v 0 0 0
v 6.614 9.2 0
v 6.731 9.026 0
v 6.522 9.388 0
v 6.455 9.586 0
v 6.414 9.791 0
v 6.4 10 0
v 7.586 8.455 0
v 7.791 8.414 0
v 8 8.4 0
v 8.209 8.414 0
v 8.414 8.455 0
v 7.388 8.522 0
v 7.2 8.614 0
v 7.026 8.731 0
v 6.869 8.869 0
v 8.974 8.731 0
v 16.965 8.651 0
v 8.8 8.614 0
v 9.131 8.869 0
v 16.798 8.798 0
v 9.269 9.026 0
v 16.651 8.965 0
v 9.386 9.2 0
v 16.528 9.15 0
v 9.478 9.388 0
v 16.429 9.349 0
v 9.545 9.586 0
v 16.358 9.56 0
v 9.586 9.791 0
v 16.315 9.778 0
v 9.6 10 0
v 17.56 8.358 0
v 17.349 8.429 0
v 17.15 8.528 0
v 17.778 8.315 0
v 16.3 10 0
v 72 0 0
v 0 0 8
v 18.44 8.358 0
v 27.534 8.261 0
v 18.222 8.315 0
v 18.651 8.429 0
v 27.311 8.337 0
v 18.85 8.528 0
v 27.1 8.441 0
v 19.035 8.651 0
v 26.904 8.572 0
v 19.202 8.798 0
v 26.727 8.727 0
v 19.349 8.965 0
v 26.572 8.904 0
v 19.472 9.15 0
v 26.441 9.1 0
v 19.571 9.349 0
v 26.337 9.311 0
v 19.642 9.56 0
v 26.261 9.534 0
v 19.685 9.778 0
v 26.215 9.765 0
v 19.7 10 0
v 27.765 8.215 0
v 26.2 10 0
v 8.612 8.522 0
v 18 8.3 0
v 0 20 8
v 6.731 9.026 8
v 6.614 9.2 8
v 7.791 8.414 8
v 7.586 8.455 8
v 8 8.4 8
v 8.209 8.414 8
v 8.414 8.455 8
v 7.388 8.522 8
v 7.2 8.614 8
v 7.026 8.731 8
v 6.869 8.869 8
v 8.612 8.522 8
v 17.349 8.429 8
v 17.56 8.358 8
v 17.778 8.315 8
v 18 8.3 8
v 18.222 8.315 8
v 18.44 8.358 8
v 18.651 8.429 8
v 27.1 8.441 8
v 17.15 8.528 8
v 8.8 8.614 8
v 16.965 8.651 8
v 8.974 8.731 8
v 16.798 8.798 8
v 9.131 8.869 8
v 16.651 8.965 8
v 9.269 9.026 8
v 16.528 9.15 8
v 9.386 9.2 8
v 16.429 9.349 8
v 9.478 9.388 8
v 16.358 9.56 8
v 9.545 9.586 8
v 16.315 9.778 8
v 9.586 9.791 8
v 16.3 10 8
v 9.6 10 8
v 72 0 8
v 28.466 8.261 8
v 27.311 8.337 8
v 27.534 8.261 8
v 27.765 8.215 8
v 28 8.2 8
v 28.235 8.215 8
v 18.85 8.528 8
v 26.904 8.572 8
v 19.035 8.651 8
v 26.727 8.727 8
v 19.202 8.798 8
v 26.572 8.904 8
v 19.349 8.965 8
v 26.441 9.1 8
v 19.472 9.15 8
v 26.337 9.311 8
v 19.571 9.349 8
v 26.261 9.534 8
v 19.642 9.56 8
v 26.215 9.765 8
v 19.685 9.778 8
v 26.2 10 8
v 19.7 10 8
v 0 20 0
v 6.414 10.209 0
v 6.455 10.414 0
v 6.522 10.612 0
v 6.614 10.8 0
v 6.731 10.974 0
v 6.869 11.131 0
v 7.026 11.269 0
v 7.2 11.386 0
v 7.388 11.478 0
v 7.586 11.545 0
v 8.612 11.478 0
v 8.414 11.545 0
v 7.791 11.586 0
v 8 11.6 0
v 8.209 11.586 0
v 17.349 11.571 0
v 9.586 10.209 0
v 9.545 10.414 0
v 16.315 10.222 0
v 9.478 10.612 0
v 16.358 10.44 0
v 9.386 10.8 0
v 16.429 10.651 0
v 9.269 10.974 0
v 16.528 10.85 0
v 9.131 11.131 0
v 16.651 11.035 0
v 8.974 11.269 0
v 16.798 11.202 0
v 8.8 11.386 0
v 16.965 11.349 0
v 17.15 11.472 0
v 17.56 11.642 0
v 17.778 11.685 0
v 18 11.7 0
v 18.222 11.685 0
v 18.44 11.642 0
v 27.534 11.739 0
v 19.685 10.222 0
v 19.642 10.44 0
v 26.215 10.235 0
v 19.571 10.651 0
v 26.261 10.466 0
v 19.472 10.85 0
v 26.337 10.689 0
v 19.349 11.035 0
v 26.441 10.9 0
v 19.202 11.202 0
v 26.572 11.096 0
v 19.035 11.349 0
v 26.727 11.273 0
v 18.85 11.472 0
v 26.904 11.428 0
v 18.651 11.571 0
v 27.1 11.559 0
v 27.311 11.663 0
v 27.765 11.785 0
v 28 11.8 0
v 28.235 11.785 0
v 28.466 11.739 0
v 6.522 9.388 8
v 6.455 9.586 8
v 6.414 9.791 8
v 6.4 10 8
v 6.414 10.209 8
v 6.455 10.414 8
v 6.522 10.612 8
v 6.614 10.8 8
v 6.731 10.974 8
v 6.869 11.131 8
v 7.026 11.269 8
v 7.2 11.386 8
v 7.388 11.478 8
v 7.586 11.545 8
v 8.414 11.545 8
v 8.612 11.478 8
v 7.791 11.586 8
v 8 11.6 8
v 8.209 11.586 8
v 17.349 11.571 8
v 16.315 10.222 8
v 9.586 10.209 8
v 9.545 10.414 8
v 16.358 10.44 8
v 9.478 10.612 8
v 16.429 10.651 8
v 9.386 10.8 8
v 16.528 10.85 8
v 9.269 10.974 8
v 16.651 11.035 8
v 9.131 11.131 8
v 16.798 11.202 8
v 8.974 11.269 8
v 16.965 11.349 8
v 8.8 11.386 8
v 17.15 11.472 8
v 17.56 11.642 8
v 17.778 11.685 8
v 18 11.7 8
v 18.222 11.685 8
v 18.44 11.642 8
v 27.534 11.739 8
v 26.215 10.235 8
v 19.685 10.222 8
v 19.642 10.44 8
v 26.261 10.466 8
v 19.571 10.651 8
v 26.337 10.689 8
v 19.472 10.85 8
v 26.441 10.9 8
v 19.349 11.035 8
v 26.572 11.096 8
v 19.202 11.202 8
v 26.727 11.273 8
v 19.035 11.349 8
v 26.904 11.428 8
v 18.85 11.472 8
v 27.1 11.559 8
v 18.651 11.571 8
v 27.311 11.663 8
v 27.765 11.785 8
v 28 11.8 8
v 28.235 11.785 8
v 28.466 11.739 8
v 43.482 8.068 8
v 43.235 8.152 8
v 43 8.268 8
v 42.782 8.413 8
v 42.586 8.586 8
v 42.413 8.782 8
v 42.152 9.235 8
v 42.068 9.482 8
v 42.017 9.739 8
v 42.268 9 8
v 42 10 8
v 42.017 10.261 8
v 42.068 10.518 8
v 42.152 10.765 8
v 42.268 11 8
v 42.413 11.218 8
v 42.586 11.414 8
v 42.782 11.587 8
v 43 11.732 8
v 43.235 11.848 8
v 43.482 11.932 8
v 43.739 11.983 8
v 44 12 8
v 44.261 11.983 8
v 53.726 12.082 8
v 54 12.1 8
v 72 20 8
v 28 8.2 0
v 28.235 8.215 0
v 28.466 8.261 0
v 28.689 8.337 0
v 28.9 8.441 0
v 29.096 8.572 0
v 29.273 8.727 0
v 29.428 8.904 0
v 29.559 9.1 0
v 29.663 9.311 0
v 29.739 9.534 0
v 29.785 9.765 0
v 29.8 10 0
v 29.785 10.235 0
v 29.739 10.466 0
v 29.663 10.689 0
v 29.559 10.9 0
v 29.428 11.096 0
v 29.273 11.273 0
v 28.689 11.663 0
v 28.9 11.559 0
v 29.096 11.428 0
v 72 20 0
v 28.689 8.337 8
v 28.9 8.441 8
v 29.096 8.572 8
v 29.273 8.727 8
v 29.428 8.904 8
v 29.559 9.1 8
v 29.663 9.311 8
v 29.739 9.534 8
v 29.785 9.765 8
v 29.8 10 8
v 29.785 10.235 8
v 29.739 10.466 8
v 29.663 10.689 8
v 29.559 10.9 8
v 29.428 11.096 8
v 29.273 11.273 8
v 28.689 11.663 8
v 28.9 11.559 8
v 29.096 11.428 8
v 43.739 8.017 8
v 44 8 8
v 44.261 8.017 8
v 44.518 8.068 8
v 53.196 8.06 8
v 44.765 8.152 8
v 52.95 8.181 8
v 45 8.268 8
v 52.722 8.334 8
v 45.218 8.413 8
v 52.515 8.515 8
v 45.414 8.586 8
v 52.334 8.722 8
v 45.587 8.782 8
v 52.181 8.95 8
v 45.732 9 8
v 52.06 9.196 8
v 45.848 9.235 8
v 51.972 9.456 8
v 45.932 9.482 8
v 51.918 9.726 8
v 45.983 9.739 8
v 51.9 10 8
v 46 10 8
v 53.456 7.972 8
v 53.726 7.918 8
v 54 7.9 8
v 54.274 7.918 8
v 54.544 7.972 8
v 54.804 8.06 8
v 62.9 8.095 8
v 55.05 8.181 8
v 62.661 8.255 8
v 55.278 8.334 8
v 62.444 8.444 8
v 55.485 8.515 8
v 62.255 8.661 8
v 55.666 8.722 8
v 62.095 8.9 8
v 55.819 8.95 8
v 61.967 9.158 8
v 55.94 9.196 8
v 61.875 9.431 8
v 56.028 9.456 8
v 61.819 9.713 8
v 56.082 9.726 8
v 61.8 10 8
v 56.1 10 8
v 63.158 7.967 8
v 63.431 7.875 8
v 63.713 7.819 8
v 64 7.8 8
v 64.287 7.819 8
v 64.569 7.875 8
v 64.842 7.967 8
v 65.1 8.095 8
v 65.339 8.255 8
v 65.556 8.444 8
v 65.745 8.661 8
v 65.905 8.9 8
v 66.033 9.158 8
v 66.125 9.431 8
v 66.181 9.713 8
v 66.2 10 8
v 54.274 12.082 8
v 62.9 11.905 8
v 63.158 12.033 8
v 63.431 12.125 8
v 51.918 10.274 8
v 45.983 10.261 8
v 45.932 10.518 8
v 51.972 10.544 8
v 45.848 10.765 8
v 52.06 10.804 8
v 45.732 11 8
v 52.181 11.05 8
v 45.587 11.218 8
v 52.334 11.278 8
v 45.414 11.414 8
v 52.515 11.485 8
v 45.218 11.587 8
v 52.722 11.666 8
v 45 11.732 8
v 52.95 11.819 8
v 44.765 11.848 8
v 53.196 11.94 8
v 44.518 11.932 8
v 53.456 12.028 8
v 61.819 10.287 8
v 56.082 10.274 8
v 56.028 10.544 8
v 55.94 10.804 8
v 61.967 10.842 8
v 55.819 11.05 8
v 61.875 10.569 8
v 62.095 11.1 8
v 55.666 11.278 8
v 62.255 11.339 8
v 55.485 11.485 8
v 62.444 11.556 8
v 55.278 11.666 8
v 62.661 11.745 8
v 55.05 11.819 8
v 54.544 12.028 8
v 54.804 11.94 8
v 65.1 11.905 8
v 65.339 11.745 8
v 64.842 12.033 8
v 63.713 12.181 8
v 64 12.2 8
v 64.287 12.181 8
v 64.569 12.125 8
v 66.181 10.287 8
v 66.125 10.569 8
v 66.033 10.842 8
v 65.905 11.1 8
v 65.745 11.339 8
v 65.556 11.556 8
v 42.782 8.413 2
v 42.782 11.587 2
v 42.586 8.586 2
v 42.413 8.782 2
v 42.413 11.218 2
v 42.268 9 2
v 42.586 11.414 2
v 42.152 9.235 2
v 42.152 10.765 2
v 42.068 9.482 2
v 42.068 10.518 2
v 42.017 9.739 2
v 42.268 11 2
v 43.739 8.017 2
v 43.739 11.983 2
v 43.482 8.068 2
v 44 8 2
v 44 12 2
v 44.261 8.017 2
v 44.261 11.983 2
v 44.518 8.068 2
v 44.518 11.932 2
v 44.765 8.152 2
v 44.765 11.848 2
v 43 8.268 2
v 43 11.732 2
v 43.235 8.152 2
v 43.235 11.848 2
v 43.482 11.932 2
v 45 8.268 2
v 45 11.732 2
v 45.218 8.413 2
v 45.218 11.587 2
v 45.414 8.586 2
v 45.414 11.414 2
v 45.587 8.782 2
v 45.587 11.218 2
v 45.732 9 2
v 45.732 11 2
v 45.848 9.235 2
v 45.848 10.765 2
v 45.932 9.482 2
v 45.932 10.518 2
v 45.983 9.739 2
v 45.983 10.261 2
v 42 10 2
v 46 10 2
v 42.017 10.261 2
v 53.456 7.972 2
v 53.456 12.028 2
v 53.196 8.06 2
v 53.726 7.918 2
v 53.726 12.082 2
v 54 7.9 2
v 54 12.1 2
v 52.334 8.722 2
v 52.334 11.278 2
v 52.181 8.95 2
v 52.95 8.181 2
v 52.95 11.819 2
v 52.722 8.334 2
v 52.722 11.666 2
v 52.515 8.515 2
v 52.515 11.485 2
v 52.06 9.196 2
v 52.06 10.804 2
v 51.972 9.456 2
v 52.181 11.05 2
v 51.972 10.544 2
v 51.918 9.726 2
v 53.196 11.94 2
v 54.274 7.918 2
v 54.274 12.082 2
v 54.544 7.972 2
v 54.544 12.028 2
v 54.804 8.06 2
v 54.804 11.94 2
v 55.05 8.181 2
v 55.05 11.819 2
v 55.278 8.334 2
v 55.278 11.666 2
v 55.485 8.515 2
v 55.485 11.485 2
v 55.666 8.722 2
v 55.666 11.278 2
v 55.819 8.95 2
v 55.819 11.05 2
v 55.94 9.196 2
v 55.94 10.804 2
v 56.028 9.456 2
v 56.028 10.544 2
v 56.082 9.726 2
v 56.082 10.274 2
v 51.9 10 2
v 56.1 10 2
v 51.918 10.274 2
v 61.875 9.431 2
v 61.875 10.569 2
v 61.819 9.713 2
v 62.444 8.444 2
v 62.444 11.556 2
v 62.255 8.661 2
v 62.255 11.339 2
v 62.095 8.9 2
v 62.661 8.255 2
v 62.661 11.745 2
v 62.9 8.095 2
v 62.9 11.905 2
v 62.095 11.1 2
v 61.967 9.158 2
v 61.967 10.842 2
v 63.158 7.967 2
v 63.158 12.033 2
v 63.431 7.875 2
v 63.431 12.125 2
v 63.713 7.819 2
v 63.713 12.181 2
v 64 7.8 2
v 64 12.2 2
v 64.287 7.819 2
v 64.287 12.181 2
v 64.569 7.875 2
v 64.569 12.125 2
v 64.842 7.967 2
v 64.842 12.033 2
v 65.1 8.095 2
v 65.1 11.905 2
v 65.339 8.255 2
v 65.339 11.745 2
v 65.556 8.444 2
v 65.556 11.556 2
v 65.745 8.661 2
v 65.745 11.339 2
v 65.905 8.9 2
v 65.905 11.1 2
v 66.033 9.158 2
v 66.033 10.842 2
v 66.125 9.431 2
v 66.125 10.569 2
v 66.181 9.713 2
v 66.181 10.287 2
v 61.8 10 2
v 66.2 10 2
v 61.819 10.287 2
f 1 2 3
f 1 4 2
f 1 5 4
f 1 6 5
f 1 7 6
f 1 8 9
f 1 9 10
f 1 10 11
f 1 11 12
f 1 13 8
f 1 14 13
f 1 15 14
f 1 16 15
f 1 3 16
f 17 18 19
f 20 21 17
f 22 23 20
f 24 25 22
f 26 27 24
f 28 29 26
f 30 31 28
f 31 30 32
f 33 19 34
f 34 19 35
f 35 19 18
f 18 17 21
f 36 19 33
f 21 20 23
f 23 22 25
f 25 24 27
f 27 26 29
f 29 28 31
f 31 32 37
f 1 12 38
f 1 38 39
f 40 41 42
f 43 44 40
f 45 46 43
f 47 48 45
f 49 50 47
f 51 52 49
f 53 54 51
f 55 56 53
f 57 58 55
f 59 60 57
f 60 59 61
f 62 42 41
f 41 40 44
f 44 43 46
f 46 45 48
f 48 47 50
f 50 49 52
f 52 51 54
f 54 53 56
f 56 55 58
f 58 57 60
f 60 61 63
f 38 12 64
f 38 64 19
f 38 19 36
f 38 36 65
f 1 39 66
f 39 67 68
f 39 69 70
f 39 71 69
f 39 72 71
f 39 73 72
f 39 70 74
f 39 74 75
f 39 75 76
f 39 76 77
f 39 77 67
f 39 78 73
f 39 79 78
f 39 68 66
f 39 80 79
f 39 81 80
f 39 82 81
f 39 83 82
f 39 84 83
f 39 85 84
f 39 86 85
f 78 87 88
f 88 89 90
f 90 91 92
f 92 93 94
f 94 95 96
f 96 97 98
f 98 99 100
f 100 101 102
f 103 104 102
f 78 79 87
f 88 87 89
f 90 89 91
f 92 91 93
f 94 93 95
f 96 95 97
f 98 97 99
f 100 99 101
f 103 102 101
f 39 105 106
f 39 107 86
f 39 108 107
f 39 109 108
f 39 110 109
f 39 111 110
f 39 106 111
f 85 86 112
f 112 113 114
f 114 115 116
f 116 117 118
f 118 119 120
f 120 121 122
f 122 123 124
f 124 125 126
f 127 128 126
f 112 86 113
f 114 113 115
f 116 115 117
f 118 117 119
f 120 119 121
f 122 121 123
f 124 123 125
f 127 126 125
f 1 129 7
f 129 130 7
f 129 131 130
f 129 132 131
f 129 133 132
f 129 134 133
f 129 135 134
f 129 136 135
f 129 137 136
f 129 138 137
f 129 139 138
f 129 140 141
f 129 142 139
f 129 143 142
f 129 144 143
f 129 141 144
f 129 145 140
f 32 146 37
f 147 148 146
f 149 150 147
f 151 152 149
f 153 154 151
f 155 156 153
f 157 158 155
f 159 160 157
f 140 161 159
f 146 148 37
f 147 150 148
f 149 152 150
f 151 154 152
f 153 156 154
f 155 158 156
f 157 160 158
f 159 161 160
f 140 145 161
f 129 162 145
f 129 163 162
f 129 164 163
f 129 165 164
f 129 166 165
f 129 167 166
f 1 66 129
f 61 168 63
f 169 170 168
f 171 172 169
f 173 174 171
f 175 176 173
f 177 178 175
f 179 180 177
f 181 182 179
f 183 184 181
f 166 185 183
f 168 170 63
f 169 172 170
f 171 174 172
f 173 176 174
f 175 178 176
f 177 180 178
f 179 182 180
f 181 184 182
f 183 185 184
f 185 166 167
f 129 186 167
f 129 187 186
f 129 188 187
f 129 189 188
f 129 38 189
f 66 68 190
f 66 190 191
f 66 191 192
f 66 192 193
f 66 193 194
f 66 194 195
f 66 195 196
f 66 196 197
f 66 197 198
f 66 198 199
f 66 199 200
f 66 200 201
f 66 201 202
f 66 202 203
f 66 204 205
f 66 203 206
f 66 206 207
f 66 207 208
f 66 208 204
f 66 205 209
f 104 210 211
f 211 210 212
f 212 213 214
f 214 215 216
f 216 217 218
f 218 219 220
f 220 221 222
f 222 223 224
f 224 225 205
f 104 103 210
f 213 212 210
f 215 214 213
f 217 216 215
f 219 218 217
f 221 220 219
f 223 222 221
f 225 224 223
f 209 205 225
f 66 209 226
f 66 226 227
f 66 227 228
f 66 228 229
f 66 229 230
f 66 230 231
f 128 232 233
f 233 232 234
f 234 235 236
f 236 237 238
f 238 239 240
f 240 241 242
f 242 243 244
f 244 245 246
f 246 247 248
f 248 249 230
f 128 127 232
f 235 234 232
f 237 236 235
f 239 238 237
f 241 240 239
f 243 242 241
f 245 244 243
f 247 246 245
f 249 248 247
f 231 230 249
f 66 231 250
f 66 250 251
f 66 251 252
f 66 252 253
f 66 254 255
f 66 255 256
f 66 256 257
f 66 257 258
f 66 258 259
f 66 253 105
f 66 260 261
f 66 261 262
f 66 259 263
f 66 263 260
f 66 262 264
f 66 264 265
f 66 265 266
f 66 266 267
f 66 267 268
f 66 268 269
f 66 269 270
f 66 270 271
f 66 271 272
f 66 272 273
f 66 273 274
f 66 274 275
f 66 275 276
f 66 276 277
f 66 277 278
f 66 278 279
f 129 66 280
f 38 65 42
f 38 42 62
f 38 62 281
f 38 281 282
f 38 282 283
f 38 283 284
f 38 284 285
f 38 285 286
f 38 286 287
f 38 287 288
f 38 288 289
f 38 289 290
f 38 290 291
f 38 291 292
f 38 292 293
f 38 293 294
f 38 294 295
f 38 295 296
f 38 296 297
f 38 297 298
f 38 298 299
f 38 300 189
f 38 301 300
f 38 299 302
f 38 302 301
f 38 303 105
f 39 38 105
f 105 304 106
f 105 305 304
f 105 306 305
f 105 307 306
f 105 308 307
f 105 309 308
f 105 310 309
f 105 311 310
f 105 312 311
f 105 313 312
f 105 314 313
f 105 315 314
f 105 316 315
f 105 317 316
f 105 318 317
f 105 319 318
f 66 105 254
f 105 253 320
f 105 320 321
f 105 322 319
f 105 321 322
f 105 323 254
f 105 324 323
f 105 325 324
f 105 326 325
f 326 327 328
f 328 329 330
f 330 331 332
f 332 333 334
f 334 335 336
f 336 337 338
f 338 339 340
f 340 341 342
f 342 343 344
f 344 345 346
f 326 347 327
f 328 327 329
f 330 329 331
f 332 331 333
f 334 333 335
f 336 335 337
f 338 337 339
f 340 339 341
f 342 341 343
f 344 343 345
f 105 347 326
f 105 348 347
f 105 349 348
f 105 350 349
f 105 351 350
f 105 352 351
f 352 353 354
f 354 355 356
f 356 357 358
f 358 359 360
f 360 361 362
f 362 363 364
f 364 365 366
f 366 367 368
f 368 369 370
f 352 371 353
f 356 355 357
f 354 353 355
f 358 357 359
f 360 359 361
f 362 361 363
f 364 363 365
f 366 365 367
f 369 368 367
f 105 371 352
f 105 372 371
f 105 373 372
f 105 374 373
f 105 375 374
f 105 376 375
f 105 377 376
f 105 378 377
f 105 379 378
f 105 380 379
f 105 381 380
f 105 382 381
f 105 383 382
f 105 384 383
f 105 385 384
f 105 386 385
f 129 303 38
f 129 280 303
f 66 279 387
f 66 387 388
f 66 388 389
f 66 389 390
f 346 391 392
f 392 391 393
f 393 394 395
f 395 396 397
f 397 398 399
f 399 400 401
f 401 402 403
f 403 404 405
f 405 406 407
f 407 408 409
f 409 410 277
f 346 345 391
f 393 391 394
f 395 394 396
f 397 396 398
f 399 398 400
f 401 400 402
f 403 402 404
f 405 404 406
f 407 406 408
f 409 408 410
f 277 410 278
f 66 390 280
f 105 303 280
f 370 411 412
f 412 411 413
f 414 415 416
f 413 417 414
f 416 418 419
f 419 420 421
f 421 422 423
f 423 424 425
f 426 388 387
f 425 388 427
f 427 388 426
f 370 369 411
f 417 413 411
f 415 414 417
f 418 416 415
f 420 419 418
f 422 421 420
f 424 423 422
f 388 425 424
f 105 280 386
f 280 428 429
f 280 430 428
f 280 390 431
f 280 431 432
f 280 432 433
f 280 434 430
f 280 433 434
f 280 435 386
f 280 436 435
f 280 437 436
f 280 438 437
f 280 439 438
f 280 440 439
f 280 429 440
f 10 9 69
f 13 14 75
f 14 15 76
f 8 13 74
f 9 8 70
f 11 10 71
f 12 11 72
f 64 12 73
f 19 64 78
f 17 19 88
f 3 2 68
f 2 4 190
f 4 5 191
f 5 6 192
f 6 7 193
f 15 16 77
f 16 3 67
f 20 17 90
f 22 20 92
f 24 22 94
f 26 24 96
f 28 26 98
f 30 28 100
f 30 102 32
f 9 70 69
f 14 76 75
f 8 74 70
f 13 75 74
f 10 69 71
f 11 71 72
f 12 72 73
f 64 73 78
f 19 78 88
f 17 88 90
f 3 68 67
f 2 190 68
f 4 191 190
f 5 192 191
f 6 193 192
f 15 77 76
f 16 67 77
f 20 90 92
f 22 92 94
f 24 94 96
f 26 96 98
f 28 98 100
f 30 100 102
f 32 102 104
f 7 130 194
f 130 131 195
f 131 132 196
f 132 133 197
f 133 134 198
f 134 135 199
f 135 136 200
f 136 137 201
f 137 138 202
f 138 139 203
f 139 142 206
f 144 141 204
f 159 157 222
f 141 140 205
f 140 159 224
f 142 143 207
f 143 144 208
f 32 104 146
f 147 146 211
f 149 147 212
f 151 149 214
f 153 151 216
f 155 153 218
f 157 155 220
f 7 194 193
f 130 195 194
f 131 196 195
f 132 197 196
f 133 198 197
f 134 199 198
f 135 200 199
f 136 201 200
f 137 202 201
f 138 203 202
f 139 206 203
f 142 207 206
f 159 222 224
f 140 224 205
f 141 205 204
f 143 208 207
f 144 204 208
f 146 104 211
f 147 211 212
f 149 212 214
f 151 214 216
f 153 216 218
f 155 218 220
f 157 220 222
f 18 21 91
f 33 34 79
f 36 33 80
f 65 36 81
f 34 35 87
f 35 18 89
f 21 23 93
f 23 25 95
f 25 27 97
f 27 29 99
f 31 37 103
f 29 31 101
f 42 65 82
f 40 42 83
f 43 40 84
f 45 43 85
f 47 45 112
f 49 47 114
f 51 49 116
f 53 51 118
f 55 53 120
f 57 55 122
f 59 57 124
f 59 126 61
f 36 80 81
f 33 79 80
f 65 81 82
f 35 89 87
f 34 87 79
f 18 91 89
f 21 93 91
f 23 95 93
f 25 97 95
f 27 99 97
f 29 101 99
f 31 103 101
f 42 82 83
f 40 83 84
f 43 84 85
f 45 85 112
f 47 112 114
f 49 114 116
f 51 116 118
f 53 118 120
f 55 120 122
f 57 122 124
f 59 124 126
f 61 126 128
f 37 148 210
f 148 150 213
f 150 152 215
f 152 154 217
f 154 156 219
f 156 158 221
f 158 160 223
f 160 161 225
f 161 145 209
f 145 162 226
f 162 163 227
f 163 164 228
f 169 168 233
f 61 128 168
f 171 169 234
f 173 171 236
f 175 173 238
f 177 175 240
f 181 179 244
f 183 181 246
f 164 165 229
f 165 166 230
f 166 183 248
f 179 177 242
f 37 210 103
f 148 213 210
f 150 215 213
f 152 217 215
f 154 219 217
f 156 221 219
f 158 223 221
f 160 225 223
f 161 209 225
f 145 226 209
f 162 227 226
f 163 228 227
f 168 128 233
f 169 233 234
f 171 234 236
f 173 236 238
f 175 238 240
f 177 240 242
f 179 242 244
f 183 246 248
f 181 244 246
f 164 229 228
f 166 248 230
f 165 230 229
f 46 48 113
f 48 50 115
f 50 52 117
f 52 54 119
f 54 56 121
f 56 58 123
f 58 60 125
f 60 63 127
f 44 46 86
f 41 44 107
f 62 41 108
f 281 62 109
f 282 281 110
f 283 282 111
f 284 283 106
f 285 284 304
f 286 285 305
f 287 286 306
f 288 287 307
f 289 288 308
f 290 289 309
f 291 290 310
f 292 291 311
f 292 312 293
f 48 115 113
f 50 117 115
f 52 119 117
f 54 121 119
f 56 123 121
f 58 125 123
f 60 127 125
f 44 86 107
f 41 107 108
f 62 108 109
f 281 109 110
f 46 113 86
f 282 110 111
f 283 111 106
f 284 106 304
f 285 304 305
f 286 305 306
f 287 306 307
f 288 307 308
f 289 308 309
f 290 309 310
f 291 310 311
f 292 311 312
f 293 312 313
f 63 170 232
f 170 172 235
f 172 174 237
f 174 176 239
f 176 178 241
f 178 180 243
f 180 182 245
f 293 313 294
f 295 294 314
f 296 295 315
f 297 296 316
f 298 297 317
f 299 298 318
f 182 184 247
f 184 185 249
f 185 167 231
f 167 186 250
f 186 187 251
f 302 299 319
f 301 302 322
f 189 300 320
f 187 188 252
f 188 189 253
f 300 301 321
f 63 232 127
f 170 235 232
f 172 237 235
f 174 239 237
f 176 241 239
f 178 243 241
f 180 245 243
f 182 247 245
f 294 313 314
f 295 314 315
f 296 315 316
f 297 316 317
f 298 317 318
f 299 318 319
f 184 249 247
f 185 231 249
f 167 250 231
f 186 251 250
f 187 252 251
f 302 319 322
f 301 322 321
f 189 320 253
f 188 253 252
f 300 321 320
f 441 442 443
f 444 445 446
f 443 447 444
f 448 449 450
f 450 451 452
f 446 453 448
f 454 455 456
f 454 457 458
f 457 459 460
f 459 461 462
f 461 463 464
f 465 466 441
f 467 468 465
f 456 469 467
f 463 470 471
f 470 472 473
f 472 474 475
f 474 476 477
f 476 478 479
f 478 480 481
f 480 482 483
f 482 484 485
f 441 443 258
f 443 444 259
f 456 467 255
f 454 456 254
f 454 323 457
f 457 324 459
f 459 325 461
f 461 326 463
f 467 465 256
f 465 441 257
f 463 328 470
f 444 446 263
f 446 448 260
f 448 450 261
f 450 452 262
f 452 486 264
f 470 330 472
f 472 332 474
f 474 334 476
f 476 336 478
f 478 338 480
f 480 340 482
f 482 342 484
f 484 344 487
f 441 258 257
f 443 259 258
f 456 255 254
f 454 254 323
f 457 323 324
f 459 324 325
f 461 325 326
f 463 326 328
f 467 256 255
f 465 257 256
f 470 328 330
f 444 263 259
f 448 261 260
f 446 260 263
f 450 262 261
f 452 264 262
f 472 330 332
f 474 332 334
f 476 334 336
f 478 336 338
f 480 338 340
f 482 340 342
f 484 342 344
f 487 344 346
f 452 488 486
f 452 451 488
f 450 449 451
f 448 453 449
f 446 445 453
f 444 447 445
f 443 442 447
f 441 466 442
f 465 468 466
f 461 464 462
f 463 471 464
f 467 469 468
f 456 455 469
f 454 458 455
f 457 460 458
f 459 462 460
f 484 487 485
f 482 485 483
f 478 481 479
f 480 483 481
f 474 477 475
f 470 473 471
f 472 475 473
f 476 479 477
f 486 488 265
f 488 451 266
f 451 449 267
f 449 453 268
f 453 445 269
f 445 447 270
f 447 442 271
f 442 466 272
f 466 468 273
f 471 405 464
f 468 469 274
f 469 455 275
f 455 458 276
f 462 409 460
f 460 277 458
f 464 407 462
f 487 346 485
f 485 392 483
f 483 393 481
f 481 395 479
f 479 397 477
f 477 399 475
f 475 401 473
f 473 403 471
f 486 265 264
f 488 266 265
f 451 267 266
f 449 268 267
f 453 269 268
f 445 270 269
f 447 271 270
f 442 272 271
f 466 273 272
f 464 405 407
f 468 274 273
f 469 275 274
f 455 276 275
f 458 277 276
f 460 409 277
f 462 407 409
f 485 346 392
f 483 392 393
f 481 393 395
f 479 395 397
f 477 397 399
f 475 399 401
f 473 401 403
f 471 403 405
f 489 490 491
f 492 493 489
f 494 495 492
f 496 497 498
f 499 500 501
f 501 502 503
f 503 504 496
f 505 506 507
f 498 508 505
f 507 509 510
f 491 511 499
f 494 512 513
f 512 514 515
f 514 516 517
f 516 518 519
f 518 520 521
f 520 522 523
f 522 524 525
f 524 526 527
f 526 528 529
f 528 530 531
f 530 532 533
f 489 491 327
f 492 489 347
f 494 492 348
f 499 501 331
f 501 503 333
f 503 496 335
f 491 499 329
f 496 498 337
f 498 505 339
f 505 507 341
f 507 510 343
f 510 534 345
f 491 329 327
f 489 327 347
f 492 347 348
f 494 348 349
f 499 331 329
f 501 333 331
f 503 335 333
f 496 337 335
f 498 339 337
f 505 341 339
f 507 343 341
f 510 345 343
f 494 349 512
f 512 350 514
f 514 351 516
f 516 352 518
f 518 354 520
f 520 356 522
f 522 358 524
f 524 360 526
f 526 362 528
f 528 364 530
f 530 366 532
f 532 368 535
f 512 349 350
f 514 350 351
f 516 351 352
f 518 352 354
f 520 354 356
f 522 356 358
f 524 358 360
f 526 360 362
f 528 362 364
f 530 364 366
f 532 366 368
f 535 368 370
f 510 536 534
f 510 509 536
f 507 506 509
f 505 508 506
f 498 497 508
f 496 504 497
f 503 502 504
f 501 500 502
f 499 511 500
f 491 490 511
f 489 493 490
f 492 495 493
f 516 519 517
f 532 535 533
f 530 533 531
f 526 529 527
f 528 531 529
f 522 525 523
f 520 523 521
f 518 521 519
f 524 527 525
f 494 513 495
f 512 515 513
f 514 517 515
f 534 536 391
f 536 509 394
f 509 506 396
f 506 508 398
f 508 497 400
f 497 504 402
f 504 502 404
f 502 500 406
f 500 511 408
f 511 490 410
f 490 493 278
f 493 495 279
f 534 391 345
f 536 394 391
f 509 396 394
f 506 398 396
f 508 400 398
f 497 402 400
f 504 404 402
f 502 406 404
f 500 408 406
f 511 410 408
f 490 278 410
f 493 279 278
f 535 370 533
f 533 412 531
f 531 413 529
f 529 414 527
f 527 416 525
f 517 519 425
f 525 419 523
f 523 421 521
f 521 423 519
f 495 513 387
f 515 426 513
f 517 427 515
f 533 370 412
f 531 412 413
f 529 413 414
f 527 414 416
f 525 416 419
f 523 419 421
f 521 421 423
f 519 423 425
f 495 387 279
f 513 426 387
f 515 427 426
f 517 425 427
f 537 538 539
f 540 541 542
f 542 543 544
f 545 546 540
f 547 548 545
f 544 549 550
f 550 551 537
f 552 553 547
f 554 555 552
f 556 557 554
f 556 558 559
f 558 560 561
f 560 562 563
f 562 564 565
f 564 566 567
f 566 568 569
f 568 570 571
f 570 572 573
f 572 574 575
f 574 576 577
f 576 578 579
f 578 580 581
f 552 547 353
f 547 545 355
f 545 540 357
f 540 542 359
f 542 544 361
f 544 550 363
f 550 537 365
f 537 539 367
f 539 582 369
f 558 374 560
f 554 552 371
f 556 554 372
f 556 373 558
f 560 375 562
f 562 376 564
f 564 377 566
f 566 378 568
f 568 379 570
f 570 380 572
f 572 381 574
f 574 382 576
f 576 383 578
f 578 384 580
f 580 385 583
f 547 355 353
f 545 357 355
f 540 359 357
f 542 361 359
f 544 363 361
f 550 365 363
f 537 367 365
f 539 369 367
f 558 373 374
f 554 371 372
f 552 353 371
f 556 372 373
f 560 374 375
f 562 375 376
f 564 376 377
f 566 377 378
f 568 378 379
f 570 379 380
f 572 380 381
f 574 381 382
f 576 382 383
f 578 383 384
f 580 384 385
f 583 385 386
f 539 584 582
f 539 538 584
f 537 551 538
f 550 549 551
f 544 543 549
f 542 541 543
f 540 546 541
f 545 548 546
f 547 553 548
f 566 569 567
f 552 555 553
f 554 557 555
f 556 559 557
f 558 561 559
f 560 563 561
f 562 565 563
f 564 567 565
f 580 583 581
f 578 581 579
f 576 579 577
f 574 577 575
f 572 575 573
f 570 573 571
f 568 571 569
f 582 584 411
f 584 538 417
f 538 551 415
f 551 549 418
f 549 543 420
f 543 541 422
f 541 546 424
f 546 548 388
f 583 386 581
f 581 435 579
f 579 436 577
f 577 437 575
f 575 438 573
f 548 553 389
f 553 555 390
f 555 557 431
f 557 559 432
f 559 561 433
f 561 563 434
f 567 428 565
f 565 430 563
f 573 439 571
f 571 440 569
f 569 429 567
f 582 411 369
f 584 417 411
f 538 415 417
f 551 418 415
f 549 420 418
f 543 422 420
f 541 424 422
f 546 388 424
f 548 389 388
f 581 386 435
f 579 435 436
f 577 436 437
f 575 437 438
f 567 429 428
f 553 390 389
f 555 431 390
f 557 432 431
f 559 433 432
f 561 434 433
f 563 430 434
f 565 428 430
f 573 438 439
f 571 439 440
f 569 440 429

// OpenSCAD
// CONCEPT MOCK-UP ONLY. Units mm. Generated from parameters.json; not a fabrication-ready PCB.
difference() {
cube([72,20,8]);
translate([8, 10, -0.02]) { cylinder(d=3.2,h=8.04,$fn=48); }
translate([18, 10, -0.02]) { cylinder(d=3.4,h=8.04,$fn=48); }
translate([28, 10, -0.02]) { cylinder(d=3.6,h=8.04,$fn=48); }
translate([44, 10, 2]) { cylinder(d=4.0,h=6.02,$fn=48); }
translate([54, 10, 2]) { cylinder(d=4.2,h=6.02,$fn=48); }
translate([64, 10, 2]) { cylinder(d=4.4,h=6.02,$fn=48); }
}
